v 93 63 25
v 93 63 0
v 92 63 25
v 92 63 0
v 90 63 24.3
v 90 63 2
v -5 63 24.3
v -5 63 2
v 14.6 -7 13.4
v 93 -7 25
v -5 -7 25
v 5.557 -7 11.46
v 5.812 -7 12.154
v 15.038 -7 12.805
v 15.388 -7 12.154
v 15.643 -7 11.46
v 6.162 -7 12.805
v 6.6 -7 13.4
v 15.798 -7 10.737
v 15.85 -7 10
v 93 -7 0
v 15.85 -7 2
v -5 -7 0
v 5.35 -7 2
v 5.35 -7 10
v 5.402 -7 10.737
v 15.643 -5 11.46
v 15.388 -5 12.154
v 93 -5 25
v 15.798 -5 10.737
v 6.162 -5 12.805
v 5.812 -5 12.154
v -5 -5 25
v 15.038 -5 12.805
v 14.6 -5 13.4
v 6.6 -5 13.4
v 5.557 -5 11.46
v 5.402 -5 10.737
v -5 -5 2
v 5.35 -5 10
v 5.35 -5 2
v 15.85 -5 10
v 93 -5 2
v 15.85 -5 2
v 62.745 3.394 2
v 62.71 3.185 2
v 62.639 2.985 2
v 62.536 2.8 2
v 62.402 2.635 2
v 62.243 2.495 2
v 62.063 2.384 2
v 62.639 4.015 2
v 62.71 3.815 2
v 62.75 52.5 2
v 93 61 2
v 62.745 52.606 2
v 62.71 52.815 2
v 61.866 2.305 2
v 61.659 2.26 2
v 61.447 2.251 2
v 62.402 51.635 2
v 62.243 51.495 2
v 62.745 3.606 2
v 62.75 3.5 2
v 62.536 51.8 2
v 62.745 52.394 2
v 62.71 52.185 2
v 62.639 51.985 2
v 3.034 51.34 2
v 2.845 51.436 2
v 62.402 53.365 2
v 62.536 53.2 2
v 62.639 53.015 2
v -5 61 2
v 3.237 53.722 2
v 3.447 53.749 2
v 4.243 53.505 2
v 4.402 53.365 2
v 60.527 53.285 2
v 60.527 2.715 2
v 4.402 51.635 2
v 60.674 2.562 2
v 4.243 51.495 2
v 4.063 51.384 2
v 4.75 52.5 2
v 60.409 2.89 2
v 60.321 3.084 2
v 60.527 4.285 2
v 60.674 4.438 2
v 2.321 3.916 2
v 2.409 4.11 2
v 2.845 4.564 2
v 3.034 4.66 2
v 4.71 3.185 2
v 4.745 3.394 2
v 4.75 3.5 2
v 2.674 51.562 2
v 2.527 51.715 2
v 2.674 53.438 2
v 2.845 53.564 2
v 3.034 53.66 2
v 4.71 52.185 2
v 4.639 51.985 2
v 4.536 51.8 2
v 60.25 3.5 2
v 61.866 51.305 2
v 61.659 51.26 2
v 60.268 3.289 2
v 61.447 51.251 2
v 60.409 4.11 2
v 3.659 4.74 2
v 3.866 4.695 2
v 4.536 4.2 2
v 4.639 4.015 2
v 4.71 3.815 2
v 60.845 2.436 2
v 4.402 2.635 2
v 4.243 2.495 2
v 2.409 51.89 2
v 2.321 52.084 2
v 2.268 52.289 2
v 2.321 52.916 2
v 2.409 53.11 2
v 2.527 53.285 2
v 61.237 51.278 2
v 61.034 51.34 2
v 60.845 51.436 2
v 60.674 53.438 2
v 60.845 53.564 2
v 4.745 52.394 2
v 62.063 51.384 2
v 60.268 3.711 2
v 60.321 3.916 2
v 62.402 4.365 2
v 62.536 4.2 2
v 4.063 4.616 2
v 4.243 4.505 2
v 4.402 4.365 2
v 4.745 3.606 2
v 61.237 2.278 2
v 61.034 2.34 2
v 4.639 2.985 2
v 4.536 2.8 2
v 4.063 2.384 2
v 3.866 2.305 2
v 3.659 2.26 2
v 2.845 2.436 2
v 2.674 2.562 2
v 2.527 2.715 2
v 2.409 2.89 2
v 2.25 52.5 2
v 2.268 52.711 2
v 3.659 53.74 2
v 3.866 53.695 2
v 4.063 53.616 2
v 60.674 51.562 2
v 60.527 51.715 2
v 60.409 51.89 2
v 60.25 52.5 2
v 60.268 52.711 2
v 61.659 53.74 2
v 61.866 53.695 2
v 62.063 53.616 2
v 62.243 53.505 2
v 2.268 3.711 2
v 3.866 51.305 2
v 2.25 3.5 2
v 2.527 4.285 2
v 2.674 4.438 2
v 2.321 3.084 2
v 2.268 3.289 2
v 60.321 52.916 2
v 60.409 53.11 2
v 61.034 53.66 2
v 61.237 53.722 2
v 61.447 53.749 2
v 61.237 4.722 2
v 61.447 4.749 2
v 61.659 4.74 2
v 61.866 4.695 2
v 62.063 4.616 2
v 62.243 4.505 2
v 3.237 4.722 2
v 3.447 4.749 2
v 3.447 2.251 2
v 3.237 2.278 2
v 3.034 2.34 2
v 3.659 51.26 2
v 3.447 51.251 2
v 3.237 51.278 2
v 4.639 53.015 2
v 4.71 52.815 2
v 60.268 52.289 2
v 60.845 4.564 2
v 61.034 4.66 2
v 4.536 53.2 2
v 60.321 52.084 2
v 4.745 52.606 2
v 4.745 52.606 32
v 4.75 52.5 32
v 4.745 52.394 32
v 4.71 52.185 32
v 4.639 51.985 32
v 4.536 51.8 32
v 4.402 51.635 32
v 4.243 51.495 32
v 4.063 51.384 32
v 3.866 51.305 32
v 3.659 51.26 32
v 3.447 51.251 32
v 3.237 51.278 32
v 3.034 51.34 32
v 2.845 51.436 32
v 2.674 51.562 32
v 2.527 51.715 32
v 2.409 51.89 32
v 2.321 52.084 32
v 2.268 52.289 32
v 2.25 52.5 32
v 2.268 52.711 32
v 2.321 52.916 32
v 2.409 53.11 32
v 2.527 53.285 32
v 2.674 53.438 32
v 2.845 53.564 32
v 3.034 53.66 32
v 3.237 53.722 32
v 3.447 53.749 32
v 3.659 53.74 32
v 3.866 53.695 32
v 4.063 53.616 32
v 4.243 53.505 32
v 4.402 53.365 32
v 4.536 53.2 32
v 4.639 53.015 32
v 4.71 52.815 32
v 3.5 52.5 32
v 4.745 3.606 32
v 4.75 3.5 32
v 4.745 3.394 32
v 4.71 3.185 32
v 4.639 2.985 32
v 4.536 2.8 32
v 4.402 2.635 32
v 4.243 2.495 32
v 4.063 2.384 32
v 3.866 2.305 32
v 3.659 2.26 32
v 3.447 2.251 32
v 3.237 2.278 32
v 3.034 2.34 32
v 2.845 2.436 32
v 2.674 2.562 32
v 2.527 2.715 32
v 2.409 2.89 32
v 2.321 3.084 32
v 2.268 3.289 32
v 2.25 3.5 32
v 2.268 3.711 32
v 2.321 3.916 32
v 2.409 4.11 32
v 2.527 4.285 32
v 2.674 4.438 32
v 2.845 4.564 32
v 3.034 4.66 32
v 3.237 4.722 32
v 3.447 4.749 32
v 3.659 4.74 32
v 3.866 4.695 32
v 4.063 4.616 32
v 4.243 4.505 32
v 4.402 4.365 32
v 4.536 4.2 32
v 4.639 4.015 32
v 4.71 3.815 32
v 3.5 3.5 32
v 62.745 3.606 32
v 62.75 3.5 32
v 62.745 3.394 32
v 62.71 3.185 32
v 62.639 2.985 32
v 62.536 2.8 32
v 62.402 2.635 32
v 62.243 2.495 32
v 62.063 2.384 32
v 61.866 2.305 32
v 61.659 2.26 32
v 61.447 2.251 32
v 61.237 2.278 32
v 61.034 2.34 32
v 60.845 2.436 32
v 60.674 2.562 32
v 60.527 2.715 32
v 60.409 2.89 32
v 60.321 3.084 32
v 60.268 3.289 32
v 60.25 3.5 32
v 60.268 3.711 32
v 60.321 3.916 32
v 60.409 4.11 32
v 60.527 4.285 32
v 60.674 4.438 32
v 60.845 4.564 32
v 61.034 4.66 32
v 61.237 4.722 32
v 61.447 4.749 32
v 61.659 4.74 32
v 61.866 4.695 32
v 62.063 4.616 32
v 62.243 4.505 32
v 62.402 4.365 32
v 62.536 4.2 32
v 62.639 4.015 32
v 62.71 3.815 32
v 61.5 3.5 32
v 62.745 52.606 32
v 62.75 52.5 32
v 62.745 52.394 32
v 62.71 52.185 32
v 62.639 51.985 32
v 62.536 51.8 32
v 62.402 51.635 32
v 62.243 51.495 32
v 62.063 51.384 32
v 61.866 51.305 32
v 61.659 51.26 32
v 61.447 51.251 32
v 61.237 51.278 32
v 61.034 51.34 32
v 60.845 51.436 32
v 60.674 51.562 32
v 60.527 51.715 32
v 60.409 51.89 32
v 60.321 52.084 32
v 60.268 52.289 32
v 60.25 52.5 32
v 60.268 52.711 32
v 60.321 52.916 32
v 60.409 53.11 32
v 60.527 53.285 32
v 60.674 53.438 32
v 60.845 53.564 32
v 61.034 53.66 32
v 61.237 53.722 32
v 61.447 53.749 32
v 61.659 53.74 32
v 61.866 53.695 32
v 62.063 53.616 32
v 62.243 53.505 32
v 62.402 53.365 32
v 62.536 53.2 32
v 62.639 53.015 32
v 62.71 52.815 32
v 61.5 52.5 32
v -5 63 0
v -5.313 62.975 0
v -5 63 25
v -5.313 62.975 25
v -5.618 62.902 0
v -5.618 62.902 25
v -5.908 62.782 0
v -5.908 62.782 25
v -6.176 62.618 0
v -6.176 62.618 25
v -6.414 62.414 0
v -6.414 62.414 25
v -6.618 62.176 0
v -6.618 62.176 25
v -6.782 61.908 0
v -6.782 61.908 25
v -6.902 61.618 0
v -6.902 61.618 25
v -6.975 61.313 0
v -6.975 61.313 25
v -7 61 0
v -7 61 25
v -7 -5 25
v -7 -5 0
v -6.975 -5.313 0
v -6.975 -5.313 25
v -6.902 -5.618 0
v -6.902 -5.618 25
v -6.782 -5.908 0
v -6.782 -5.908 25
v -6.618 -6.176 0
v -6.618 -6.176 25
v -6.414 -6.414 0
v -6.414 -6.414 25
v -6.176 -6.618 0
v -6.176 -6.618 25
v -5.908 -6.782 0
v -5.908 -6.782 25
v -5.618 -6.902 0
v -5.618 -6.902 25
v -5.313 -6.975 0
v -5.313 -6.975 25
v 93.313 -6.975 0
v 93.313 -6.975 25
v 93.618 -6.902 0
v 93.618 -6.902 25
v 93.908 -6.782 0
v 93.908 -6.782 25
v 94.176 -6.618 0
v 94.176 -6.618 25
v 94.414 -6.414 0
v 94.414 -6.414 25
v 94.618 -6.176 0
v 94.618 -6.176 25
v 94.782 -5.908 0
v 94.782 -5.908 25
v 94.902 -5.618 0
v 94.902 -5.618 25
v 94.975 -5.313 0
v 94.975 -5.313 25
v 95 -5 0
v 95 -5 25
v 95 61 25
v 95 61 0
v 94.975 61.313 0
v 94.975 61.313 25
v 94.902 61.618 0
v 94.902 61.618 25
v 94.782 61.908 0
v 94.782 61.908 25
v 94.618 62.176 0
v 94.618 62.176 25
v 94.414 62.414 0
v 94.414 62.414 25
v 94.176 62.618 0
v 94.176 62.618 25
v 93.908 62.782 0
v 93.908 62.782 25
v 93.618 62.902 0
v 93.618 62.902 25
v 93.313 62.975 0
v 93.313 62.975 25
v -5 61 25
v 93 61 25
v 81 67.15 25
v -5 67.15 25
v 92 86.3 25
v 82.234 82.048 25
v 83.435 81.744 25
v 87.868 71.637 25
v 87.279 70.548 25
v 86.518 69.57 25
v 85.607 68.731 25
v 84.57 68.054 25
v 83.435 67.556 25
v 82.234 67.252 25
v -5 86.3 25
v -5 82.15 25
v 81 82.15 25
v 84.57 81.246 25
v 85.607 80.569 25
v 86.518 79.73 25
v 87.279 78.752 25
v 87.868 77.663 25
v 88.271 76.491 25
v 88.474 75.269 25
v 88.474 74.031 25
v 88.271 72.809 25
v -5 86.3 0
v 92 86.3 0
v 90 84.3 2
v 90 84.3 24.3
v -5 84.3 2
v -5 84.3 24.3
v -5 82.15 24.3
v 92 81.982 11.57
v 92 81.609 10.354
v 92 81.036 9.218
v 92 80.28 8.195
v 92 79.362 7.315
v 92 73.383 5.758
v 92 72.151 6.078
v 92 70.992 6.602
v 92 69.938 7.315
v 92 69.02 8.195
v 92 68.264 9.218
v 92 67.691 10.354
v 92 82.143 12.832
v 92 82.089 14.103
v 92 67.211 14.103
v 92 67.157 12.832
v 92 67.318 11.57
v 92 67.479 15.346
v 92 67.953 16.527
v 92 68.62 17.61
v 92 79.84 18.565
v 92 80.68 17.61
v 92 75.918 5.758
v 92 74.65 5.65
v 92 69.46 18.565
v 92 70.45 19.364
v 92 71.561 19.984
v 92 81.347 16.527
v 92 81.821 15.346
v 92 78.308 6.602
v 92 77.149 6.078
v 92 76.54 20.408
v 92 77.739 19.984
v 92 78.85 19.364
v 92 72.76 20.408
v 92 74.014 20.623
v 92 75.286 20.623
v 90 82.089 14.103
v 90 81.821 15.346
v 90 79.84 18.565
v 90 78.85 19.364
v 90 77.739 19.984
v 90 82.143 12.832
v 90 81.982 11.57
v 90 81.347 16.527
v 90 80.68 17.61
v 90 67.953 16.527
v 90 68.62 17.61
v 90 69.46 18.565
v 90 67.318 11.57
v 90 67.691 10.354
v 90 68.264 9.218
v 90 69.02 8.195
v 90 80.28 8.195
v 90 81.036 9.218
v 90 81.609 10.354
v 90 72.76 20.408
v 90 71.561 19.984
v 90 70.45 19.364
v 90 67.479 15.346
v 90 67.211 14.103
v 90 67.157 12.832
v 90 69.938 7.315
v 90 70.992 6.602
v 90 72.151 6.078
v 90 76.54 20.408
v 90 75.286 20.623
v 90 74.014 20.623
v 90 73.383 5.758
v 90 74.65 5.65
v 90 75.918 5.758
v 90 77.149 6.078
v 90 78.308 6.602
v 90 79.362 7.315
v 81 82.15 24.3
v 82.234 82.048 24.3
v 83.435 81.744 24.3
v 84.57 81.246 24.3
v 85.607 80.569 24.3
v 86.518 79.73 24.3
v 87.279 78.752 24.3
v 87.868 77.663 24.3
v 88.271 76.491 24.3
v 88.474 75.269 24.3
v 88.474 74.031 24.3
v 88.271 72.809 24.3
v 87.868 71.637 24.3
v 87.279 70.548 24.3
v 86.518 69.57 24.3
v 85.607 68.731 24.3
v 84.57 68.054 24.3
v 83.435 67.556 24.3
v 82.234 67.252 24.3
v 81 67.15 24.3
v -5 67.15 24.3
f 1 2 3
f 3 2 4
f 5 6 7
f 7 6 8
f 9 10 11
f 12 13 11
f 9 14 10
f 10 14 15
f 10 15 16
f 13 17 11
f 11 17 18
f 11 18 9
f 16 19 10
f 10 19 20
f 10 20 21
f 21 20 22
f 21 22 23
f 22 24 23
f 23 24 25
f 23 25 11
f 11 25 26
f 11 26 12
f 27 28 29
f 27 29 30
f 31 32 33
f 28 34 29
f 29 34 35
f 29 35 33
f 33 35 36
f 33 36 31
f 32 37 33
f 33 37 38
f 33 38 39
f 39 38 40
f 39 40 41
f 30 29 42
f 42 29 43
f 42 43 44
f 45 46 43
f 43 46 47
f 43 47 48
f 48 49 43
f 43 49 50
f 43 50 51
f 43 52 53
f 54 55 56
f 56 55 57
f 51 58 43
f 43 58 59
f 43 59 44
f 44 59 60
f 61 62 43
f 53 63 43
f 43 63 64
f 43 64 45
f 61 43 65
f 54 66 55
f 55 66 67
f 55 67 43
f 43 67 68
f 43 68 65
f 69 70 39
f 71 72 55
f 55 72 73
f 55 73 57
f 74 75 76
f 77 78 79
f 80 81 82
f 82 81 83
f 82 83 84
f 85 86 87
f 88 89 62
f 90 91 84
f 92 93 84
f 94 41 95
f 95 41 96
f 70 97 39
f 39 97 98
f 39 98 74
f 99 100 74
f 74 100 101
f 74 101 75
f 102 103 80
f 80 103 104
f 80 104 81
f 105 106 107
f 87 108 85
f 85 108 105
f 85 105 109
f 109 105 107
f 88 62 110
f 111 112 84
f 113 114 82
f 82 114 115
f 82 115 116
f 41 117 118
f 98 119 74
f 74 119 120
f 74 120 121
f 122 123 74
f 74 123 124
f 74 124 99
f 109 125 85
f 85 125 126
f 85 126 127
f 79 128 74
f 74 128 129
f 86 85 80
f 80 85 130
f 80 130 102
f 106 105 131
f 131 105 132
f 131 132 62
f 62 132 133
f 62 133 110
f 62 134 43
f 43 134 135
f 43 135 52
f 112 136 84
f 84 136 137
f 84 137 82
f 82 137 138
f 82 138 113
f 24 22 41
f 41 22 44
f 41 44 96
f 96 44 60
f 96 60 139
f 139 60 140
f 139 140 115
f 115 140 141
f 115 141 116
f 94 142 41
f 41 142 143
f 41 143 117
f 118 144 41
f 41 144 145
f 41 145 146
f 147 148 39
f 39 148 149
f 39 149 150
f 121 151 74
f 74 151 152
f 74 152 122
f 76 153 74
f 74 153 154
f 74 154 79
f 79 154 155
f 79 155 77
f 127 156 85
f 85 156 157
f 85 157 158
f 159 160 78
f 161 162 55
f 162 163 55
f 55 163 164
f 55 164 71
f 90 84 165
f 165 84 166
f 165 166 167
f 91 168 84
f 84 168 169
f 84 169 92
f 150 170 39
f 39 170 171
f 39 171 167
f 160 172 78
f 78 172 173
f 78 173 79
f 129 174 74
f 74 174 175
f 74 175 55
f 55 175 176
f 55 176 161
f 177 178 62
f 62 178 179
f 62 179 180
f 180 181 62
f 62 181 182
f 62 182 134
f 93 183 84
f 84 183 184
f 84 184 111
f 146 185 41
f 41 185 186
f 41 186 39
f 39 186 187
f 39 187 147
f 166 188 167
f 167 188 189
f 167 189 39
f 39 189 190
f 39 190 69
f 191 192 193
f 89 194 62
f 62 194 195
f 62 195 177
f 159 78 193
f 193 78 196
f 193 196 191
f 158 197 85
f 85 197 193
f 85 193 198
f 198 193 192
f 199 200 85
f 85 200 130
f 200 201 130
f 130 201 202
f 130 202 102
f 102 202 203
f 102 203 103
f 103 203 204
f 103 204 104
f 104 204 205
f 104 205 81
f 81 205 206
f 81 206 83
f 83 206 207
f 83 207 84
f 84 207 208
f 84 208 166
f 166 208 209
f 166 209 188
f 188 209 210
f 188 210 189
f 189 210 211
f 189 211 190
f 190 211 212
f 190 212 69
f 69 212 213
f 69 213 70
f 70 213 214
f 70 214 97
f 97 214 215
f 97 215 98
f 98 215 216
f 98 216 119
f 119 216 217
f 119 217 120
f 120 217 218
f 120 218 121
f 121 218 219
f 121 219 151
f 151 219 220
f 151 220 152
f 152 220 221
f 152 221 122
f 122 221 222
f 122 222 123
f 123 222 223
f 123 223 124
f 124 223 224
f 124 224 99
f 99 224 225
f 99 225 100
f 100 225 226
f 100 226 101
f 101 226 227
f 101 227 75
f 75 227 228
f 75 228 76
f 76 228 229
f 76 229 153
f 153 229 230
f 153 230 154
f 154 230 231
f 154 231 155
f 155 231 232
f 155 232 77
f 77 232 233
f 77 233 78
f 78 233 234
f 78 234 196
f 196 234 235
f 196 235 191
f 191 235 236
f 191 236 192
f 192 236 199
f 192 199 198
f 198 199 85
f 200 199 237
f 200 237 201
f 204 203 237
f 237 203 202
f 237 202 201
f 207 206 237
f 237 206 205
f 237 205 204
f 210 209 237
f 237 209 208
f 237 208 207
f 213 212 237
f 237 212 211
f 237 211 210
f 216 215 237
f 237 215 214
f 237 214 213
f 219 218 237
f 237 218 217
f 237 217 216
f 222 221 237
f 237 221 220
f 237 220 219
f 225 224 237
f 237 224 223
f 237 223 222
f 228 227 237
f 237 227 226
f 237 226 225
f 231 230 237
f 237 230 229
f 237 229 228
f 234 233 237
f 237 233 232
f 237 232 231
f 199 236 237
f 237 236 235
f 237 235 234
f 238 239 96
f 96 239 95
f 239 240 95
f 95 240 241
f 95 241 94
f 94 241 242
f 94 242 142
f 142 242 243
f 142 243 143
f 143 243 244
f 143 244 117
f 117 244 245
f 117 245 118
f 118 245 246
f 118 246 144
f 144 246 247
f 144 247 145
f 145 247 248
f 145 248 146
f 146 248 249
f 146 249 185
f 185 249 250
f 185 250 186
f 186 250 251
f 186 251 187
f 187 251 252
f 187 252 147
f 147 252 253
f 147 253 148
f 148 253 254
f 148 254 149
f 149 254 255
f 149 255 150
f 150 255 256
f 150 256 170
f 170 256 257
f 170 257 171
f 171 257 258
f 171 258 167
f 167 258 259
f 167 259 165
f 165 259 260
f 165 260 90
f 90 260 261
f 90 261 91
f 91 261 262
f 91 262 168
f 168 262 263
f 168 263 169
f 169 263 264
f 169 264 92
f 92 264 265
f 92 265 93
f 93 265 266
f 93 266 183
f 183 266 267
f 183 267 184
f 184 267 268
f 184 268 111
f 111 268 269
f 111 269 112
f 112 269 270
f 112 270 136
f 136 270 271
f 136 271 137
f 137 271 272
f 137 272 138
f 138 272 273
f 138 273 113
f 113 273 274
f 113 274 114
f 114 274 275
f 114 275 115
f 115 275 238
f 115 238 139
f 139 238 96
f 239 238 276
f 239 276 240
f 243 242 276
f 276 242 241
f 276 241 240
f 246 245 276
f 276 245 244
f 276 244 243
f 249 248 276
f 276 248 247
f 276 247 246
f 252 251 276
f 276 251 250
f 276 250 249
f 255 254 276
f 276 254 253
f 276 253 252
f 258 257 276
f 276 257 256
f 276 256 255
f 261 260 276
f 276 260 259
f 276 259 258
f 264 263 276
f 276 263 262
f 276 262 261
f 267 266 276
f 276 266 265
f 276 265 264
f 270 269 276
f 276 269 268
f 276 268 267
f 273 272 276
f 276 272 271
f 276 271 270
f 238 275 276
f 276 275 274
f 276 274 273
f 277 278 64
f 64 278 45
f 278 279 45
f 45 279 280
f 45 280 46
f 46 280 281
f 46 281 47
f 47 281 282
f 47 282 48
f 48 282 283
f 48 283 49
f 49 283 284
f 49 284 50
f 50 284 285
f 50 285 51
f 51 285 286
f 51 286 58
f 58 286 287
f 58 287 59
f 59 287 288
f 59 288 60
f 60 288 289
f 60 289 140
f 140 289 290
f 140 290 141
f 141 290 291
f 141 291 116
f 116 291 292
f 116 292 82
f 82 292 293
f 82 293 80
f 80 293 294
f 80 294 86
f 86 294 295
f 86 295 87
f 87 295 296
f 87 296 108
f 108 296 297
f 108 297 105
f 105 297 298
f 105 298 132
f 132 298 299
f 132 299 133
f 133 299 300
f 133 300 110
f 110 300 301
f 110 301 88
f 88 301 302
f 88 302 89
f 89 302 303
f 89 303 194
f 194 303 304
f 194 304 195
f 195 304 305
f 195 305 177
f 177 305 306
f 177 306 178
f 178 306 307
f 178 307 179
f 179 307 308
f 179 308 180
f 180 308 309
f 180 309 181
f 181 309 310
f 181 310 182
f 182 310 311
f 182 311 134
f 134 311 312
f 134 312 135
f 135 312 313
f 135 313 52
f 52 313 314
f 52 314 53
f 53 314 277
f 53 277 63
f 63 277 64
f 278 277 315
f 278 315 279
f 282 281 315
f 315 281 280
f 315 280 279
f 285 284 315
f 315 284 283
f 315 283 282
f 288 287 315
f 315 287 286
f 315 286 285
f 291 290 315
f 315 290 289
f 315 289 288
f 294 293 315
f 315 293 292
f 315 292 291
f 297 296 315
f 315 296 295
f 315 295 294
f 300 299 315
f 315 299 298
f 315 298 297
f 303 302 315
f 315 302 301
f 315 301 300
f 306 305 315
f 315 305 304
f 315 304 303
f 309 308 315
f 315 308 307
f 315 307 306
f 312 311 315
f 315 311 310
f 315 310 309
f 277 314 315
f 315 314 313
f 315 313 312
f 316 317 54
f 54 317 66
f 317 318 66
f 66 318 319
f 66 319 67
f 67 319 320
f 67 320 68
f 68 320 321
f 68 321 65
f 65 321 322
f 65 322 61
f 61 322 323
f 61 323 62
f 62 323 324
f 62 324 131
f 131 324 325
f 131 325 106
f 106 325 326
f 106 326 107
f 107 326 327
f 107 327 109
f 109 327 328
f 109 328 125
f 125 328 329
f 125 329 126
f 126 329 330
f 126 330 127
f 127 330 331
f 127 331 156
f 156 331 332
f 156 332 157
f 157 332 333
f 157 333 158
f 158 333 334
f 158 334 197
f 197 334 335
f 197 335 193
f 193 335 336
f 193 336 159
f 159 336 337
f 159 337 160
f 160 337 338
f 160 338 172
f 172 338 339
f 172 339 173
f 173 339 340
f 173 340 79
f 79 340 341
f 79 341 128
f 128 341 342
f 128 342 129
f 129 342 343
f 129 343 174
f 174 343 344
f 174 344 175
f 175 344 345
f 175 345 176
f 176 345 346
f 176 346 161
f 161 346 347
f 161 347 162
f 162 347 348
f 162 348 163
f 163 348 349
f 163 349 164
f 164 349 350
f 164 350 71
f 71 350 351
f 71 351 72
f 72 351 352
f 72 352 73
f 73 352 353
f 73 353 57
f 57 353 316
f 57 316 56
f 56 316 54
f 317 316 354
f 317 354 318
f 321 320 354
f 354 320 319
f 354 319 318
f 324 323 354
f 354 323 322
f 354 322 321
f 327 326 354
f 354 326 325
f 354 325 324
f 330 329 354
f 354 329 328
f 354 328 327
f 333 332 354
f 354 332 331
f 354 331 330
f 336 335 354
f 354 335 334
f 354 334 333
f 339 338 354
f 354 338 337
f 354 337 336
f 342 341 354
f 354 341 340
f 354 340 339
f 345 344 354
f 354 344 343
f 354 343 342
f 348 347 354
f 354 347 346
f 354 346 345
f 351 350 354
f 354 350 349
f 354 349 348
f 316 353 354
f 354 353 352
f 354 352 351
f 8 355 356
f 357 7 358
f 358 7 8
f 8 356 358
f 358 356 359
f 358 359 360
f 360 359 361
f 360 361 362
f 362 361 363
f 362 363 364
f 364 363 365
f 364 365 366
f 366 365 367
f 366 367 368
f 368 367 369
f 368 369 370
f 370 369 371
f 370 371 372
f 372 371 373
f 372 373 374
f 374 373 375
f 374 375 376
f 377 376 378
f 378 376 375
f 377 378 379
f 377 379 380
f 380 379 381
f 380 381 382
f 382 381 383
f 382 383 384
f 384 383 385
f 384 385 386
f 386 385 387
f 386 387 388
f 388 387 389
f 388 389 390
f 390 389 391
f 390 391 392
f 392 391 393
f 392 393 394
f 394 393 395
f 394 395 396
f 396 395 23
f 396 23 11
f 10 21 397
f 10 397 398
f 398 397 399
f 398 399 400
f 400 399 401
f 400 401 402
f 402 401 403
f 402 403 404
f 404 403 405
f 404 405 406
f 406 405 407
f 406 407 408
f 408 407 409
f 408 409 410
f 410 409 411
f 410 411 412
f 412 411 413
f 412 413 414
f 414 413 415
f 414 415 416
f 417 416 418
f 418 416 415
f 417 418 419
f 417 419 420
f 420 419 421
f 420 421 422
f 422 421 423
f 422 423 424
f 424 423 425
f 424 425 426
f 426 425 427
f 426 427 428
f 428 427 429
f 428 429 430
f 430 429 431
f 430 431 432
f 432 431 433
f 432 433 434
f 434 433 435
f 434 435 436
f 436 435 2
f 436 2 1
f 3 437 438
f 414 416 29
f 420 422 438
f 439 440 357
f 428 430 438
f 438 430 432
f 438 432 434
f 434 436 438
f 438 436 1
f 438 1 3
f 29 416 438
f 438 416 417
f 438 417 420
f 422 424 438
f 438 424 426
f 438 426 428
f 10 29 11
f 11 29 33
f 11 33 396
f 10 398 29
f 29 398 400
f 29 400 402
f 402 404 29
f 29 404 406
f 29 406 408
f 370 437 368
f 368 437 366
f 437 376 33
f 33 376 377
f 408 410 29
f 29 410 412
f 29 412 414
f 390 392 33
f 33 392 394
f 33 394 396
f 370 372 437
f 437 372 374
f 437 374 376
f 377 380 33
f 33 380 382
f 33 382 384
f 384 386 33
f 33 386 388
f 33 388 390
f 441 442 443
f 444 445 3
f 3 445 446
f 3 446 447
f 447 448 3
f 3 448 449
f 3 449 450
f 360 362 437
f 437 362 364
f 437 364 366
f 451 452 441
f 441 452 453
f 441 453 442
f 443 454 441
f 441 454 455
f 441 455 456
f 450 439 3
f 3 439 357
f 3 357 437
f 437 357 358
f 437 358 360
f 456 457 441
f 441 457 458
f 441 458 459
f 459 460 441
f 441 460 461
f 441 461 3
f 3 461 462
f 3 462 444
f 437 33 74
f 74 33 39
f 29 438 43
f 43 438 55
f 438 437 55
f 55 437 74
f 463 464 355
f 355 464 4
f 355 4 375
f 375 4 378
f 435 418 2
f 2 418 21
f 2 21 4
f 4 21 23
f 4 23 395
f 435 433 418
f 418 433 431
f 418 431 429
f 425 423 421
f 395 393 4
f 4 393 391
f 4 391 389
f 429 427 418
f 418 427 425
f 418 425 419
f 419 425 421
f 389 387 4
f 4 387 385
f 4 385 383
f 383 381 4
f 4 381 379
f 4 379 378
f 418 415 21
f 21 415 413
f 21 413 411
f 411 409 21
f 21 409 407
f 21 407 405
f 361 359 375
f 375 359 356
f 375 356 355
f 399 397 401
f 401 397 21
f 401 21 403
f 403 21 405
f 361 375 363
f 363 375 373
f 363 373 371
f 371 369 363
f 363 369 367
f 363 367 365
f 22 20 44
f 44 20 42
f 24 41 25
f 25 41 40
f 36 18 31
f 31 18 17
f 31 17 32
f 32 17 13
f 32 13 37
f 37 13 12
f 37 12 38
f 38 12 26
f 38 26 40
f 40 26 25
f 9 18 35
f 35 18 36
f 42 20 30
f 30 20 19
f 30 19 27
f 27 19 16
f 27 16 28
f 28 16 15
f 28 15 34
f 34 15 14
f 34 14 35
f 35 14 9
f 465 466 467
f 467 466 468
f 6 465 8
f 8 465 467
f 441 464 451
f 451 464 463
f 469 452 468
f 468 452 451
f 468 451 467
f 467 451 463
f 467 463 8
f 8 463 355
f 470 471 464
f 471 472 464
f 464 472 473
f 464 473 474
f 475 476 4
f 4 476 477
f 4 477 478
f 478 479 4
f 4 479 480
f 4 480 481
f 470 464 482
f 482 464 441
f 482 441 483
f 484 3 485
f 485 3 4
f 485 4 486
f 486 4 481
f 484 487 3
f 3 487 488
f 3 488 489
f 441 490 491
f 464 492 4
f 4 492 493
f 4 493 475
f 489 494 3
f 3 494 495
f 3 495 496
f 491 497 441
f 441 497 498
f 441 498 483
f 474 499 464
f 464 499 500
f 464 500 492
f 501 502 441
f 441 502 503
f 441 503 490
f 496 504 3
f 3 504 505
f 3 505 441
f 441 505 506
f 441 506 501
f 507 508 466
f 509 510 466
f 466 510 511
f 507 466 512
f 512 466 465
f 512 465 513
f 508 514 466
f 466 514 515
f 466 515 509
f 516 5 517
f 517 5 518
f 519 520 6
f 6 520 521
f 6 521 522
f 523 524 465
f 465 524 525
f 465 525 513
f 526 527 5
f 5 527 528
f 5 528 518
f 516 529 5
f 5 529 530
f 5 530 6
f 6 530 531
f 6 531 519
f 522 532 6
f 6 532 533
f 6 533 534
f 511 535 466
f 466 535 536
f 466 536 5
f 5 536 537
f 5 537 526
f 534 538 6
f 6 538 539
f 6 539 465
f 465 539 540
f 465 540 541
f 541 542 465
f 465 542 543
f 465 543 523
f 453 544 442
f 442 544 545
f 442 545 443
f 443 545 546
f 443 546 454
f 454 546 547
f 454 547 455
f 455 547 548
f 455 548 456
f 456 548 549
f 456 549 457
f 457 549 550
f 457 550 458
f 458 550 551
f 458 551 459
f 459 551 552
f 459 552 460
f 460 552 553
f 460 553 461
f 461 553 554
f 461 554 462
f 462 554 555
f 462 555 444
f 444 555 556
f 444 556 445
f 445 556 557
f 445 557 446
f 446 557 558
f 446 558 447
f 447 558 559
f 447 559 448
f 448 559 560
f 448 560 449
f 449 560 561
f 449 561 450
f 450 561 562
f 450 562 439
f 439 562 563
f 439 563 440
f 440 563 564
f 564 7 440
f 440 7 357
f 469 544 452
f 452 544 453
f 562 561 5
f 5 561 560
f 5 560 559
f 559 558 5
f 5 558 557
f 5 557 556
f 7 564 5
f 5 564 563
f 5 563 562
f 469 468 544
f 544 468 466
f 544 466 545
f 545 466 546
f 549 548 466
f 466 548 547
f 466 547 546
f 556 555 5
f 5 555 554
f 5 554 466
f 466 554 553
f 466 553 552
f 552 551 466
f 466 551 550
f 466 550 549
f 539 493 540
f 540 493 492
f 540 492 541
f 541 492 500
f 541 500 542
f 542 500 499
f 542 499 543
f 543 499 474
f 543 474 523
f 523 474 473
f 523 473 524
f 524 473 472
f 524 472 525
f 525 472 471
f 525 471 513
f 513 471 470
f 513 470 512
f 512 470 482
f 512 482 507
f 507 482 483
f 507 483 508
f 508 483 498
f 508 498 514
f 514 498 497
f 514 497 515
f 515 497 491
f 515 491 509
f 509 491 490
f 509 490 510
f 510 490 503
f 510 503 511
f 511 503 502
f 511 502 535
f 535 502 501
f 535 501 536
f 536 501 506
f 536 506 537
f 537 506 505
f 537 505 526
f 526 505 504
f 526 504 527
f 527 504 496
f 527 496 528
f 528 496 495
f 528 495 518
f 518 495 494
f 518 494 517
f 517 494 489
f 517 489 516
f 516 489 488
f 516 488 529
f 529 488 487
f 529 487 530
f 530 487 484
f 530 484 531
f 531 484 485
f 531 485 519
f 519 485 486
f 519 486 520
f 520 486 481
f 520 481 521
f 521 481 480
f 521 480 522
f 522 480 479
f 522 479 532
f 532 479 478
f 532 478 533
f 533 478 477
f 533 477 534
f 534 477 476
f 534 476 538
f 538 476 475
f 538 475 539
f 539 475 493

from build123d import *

# Parameters (mm, degrees)
SKETCH1_W           = 98
SKETCH1_H           = 66
SKETCH1_R           = 1.25
BOSS_EXTRUDE1_DEPTH = 2
SKETCH1_3_R         = 1.25
BOSS_EXTRUDE2_DEPTH = 32
SKETCH2_W           = 98
SKETCH2_H           = 66
BOSS_EXTRUDE3_DEPTH = 25
CUT_EXTRUDE1_DEPTH  = 25
BOSS_EXTRUDE4_DEPTH = 95
SKETCH5_W           = 24
SKETCH5_H           = 23.3
BOSS_EXTRUDE5_DEPTH = 2
BOSS_EXTRUDE6_DEPTH = 0.3
BOSS_EXTRUDE7_DEPTH = 0.7
CUT_EXTRUDE2_DEPTH  = 2


with BuildPart() as part:
    # Sketch1 → Boss-Extrude1 (new body)
    with BuildSketch(Plane.XY):
        with Locations((44, 28)):
            Rectangle(SKETCH1_W, SKETCH1_H)
        with Locations((61.5, 3.5)):
            Circle(SKETCH1_R, mode=Mode.SUBTRACT)
        with Locations((3.5, 52.5)):
            Circle(SKETCH1_R, mode=Mode.SUBTRACT)
        with Locations((61.5, 52.5)):
            Circle(SKETCH1_R, mode=Mode.SUBTRACT)
        with Locations((3.5, 3.5)):
            Circle(SKETCH1_R, mode=Mode.SUBTRACT)
    extrude(amount=BOSS_EXTRUDE1_DEPTH)

    # Sketch1<3> → Boss-Extrude2 (add)
    with BuildSketch(Plane.XY):
        with Locations((3.5, 52.5)):
            Circle(SKETCH1_3_R)
        with Locations((61.5, 52.5)):
            Circle(SKETCH1_3_R)
        with Locations((61.5, 3.5)):
            Circle(SKETCH1_3_R)
        with Locations((3.5, 3.5)):
            Circle(SKETCH1_3_R)
    extrude(amount=BOSS_EXTRUDE2_DEPTH)

    # Sketch2 → Boss-Extrude3 (add)
    with BuildSketch(Plane(origin=(0, 0, 0), x_dir=(-1, 0, 0), z_dir=(0, 0, -1))):
        with BuildLine():
            Line((7, -5), (7, 61))
            ThreePointArc((7, 61), (6.414213562, 62.414213562), (5, 63))
            Line((5, 63), (-93, 63))
            ThreePointArc((-93, 63), (-94.414213562, 62.414213562), (-95, 61))
            Line((-95, 61), (-95, -5))
            ThreePointArc((-95, -5), (-94.414213562, -6.414213562), (-93, -7))
            Line((-93, -7), (5, -7))
            ThreePointArc((5, -7), (6.414213562, -6.414213562), (7, -5))
        make_face()
        with Locations((-44, 28)):
            Rectangle(SKETCH2_W, SKETCH2_H, mode=Mode.SUBTRACT)
    extrude(amount=-BOSS_EXTRUDE3_DEPTH)

    # Sketch3 → Cut-Extrude1 (cut)
    with BuildSketch(Plane.XZ.offset(7)):
        with BuildLine():
            Line((15.85, 10), (15.85, 2))
            Line((15.85, 2), (5.35, 2))
            Line((5.35, 2), (5.35, 10))
            ThreePointArc((5.35, 10), (5.672315931, 11.81119566), (6.599687512, 13.4))
            Line((6.599687512, 13.4), (14.600312488, 13.4))
            ThreePointArc((14.600312488, 13.4), (15.527684069, 11.81119566), (15.85, 10))
        make_face()
    extrude(amount=-CUT_EXTRUDE1_DEPTH, mode=Mode.SUBTRACT)

    # Sketch4 → Boss-Extrude4 (add)
    with BuildSketch(Plane(origin=(-5, 0, 0), x_dir=(0, 0, -1), z_dir=(1, 0, 0))):
        Polygon((-24, 84.3), (-24, 86.3), (0, 86.3), (0, 63), (-2, 63), (-2, 84.3), align=None)
    extrude(amount=BOSS_EXTRUDE4_DEPTH)

    # Sketch5 → Boss-Extrude5 (add)
    with BuildSketch(Plane(origin=(90, 0, 0), x_dir=(0, 0, -1), z_dir=(1, 0, 0))):
        with Locations((-12, 74.65)):
            Rectangle(SKETCH5_W, SKETCH5_H)
    extrude(amount=BOSS_EXTRUDE5_DEPTH)

    # Sketch6 → Boss-Extrude6 (add)
    with BuildSketch(Plane.XY.offset(24)):
        Polygon((-5, 84.3), (-5, 86.3), (92, 86.3), (92, 63), (90, 63), (90, 84.3), align=None)
    extrude(amount=BOSS_EXTRUDE6_DEPTH)

    # Sketch7 → Boss-Extrude7 (add)
    with BuildSketch(Plane(origin=(-5, 84.3, 24.3), x_dir=(1, 0, 0), z_dir=(0, 0, 1))):
        with BuildLine():
            Line((97, -21.3), (97, -9.65))
            Line((97, -9.65), (93.5, -9.65))
            ThreePointArc((93.5, -9.65), (91.303300859, -14.953300859), (86, -17.15))
            Line((86, -17.15), (0, -17.15))
            Line((0, -17.15), (0, -21.3))
            Line((0, -21.3), (97, -21.3))
        make_face()
        with BuildLine():
            Line((93.5, -9.65), (97, -9.65))
            Line((97, -9.65), (97, 2))
            Line((97, 2), (0, 2))
            Line((0, 2), (0, -2.15))
            Line((0, -2.15), (86, -2.15))
            ThreePointArc((86, -2.15), (91.303300859, -4.346699141), (93.5, -9.65))
        make_face()
    extrude(amount=BOSS_EXTRUDE7_DEPTH)

    # Sketch8 → Cut-Extrude2 (cut)
    with BuildSketch(Plane(origin=(92, 0, 0), x_dir=(0, 0, -1), z_dir=(1, 0, 0))):
        with BuildLine():
            ThreePointArc((-7.536194091, 79.62344782), (-18.12344782, 80.263805909), (-18.763805909, 69.67655218))
            Line((-18.763805909, 69.67655218), (-7.536194091, 79.62344782))
        make_face()
        with BuildLine():
            Line((-7.536194091, 79.62344782), (-18.763805909, 69.67655218))
            ThreePointArc((-18.763805909, 69.67655218), (-10.490445932, 67.637384785), (-5.65, 74.65))
            ThreePointArc((-5.65, 74.65), (-6.137384785, 77.309554068), (-7.536194091, 79.62344782))
        make_face()
    extrude(amount=-CUT_EXTRUDE2_DEPTH, mode=Mode.SUBTRACT)


solid = part.part
